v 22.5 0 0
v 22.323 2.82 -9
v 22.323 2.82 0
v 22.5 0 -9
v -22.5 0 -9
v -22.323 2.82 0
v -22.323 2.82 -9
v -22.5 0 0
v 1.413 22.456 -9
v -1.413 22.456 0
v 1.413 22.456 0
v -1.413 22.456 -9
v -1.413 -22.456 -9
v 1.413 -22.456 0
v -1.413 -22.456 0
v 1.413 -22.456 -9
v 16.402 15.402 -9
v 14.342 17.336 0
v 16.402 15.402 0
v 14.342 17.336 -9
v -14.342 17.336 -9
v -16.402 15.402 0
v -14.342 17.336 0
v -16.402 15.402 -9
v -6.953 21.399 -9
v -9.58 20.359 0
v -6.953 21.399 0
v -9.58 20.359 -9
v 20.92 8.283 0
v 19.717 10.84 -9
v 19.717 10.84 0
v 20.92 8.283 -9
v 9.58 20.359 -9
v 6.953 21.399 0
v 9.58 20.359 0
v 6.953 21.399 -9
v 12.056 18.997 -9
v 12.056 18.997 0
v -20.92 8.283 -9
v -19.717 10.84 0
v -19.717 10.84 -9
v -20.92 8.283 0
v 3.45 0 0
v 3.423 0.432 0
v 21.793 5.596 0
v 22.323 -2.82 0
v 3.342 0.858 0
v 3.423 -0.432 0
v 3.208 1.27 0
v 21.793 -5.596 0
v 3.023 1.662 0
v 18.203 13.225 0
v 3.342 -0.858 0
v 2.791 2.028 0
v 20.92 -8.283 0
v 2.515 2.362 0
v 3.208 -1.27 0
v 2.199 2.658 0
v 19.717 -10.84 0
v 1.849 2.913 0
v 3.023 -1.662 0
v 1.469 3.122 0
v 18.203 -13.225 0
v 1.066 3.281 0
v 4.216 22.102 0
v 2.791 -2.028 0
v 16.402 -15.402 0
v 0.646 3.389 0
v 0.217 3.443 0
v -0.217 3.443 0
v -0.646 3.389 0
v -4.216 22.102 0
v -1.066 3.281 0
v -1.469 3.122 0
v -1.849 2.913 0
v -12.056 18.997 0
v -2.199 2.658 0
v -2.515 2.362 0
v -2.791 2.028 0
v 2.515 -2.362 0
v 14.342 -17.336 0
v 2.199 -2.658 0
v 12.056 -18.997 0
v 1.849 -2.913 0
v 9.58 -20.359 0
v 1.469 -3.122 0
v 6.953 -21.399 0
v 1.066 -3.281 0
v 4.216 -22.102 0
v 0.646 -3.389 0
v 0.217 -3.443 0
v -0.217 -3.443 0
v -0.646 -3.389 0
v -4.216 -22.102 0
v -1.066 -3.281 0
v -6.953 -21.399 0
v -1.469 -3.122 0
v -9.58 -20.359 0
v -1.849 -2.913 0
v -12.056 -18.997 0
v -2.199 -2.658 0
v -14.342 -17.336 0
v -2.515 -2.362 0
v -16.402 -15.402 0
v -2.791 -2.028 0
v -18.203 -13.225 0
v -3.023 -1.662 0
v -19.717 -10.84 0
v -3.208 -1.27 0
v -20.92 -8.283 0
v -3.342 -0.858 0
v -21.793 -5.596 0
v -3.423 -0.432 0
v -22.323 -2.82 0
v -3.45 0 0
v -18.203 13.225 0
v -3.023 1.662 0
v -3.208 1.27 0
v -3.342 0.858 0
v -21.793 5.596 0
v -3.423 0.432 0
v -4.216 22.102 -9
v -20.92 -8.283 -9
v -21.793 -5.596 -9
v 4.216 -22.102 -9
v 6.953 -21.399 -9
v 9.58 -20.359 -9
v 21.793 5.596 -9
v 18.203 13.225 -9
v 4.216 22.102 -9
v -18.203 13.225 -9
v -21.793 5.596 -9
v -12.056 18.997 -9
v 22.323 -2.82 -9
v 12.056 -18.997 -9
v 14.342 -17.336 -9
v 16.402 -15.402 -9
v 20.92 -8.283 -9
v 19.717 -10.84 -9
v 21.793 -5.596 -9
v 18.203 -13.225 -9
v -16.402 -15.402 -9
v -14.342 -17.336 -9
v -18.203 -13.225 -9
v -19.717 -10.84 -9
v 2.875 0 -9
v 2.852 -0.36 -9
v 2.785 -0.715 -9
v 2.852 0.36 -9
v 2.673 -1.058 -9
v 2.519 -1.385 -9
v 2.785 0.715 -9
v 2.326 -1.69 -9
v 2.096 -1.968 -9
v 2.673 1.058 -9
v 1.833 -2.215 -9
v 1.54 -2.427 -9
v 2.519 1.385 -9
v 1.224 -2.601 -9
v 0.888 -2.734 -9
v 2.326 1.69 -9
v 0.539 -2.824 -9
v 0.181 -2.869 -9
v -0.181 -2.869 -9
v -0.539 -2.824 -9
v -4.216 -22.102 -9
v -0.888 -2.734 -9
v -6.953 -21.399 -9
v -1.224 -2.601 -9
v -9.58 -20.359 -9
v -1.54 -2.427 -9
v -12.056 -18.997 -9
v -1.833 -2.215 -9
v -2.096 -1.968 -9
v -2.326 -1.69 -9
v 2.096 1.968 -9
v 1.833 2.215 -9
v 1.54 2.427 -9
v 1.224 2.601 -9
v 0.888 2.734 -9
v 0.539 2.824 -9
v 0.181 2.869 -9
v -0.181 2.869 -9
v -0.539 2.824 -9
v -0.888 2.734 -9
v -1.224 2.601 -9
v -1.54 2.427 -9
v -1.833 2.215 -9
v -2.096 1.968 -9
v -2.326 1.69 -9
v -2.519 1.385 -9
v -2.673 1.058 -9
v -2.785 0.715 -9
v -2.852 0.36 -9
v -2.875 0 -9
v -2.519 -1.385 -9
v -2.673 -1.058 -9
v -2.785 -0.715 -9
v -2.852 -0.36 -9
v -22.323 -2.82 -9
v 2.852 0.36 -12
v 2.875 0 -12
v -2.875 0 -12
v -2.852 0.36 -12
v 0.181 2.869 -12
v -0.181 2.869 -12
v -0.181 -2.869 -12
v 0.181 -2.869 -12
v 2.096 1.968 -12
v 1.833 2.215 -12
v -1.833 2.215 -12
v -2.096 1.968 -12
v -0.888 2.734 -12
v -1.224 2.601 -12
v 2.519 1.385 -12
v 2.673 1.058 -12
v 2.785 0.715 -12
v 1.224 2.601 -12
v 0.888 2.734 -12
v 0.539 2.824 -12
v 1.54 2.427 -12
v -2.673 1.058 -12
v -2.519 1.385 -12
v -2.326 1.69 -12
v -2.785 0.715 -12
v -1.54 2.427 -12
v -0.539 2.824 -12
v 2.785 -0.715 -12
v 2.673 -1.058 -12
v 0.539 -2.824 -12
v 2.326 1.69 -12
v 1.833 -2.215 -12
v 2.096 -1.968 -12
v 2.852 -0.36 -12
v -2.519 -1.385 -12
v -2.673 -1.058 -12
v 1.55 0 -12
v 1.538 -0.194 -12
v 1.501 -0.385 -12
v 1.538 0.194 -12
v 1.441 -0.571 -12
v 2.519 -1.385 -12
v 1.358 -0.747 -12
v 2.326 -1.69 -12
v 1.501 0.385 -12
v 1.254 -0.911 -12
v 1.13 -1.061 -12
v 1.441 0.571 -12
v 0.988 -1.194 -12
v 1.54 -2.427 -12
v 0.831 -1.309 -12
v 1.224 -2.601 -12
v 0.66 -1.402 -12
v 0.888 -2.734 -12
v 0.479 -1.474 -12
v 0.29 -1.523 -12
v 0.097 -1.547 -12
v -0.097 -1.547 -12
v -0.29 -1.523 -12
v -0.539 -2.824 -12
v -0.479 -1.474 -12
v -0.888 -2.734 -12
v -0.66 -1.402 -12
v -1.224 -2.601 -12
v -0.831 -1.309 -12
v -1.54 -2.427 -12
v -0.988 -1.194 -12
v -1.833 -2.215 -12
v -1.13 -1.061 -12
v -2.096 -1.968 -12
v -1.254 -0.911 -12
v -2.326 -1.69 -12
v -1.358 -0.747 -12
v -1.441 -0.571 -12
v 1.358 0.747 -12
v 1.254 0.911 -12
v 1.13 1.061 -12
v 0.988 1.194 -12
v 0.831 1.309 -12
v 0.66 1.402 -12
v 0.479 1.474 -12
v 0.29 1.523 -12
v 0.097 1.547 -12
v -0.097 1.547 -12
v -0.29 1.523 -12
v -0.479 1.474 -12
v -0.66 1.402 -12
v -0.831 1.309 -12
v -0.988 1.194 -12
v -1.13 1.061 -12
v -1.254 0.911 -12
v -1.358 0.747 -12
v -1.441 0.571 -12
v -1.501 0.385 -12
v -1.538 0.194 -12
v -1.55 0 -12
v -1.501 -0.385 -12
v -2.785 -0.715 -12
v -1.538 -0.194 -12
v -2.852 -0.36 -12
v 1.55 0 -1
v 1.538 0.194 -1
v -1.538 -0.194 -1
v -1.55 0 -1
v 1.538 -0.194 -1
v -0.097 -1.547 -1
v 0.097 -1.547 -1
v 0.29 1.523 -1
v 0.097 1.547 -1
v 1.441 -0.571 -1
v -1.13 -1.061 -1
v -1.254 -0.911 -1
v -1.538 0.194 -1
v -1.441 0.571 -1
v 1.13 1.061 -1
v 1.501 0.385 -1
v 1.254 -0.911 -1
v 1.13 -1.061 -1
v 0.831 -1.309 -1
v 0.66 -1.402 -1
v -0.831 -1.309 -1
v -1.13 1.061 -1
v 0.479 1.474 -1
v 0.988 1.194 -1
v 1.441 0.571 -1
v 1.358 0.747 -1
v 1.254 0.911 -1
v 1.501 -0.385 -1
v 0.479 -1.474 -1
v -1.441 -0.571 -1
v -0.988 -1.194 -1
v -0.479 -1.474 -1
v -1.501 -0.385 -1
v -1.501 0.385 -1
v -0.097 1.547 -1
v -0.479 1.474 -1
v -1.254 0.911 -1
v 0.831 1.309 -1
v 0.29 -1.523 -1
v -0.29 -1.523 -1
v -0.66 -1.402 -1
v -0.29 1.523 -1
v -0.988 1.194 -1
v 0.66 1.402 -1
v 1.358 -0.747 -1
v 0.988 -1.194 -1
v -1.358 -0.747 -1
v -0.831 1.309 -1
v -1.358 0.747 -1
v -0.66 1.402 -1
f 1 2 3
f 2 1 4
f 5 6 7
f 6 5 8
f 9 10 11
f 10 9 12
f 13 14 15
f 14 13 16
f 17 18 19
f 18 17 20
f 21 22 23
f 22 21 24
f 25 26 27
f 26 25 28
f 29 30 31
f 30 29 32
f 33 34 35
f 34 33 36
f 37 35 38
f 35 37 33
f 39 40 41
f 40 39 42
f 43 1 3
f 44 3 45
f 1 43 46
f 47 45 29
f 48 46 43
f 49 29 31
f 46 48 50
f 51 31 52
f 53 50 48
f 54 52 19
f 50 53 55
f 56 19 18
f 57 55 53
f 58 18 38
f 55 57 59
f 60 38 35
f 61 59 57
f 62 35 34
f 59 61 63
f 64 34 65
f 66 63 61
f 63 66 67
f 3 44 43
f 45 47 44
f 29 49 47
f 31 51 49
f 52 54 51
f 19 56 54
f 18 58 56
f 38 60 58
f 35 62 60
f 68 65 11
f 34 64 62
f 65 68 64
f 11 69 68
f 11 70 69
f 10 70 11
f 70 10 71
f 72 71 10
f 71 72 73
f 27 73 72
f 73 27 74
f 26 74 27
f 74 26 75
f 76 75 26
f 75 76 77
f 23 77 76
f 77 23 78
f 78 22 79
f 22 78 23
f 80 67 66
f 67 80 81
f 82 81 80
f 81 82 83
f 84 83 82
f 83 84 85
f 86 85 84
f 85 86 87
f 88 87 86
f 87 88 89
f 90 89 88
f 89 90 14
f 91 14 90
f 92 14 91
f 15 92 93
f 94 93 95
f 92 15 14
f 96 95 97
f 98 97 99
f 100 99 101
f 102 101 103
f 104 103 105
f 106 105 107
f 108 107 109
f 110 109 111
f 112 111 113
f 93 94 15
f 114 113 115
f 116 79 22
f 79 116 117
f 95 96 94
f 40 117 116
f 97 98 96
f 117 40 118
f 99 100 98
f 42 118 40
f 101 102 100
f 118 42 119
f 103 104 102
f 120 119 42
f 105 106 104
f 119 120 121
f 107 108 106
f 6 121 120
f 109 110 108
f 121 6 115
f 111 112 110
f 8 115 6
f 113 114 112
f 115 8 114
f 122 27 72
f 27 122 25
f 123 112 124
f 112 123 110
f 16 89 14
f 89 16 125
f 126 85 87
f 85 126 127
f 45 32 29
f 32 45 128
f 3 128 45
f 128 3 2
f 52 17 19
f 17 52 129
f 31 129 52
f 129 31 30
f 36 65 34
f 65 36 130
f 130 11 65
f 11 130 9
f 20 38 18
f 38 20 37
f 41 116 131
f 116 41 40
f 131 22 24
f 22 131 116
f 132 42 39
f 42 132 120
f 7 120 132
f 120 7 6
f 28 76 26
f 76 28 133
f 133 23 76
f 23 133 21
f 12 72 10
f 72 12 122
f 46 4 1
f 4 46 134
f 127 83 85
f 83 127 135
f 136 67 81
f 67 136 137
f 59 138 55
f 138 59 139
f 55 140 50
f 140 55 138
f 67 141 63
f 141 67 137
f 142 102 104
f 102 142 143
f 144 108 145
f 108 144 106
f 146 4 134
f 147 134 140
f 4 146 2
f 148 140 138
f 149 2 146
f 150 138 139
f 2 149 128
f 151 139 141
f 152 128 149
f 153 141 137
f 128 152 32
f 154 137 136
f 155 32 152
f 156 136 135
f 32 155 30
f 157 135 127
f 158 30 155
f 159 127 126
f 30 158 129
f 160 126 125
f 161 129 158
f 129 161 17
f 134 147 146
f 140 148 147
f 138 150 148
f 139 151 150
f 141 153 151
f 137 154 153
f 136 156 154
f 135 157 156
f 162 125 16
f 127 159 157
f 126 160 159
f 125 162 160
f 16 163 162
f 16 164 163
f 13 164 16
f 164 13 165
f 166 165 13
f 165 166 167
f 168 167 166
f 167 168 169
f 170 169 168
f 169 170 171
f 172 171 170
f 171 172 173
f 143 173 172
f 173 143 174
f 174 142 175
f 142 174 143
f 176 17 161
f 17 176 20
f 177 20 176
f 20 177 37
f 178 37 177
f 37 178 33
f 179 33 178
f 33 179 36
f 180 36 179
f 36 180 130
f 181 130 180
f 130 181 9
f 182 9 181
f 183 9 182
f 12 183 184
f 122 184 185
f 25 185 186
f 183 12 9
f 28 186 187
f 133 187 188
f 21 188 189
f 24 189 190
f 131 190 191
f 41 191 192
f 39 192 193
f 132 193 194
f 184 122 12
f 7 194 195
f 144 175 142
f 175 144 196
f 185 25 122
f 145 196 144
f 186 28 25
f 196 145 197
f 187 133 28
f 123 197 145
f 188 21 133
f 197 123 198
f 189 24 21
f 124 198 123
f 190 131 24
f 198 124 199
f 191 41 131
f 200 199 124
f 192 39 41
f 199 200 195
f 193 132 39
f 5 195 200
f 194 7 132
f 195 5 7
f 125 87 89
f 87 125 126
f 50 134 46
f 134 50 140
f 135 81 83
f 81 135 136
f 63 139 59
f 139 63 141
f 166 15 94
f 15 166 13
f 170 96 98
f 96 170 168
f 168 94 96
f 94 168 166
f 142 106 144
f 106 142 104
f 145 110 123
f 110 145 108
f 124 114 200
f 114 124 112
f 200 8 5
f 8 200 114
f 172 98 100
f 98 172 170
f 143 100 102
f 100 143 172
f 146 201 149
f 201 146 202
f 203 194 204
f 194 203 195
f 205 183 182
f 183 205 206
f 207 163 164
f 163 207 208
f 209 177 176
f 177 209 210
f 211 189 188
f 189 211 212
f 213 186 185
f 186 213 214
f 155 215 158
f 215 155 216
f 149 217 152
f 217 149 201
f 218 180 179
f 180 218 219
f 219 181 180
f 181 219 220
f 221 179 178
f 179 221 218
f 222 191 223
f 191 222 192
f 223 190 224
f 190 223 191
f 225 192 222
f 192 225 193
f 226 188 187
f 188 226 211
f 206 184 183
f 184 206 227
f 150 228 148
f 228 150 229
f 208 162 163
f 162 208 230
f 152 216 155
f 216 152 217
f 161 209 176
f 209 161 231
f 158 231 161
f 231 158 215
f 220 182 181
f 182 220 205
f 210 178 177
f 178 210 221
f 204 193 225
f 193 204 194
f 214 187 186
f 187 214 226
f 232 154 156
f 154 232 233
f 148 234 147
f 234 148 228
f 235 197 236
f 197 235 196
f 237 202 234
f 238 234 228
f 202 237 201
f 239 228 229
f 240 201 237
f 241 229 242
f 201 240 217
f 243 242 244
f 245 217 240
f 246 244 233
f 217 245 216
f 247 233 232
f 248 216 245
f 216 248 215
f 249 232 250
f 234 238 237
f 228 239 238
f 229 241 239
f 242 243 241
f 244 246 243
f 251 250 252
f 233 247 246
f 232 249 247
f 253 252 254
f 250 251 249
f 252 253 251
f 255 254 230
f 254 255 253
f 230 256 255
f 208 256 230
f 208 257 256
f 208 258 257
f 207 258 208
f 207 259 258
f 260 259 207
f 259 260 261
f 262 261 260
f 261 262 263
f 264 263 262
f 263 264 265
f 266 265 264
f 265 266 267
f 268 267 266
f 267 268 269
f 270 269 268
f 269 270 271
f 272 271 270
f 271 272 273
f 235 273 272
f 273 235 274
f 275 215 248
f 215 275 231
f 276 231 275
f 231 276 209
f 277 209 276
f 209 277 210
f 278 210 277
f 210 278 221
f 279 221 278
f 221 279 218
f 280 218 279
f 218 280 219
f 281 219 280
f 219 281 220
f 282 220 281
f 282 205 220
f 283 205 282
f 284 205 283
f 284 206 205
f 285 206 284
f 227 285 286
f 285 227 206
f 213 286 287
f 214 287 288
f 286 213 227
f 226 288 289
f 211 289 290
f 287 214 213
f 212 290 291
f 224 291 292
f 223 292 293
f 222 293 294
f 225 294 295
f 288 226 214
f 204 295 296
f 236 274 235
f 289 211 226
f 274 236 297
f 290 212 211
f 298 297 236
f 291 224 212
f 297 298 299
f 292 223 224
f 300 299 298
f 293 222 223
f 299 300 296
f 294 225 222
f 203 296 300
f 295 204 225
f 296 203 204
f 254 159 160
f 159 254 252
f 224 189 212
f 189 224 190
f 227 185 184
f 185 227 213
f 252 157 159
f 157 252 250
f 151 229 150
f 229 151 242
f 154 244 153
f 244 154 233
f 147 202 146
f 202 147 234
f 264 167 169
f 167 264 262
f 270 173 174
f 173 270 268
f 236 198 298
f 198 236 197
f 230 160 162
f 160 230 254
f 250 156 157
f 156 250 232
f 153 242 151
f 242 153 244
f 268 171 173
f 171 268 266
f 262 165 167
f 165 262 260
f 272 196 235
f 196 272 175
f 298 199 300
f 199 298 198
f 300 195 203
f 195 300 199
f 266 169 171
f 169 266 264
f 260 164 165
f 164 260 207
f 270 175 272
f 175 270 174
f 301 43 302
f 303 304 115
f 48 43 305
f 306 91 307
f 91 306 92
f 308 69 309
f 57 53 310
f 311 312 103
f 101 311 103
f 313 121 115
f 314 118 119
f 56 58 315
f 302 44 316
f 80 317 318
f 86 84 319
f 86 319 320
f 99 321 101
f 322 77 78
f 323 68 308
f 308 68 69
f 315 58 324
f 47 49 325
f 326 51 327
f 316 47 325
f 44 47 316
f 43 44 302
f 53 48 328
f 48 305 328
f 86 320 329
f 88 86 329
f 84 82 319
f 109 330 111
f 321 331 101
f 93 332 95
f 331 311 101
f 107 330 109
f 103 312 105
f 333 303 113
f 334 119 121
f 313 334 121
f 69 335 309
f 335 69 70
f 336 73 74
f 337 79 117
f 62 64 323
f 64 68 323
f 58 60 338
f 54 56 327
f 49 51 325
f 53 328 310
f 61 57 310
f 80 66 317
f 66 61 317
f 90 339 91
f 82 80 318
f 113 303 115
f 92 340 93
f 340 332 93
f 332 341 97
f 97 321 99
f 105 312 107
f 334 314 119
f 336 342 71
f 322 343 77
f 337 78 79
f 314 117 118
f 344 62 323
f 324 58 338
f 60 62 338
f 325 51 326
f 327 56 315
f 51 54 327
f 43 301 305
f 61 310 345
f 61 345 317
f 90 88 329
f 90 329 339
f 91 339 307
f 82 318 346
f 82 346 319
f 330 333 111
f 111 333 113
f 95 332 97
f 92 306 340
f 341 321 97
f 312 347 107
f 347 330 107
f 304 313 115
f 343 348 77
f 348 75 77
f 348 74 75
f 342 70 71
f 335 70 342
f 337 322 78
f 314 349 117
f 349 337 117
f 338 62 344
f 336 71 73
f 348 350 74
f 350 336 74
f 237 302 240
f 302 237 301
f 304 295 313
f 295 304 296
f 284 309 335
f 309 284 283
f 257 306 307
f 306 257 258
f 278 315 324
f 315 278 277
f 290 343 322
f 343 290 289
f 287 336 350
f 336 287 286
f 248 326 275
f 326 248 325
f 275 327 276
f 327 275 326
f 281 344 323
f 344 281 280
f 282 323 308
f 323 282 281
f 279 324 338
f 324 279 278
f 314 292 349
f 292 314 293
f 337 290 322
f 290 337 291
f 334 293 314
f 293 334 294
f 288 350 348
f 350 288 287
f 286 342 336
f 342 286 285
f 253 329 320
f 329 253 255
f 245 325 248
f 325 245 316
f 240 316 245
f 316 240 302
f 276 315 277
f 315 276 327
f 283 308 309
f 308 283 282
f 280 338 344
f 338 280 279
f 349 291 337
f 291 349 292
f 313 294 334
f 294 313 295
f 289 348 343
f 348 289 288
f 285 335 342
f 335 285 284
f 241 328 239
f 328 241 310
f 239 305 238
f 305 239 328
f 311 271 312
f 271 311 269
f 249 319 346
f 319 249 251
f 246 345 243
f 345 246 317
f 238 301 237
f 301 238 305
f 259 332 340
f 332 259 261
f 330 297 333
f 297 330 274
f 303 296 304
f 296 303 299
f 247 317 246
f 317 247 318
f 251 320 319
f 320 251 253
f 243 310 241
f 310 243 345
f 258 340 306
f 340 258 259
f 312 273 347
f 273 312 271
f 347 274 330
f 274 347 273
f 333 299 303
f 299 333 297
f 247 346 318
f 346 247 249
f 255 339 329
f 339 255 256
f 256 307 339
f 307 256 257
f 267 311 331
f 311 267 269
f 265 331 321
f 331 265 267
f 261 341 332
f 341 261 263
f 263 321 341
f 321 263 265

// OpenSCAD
$fn = 50;

difference() {
	union() {
		translate(v = [0, 0, -9.0]) {
			cylinder(h = 9, r = 22.5);
		}
		#translate(v = [0, 0, -12.0]) {
			cylinder(h = 12, r = 2.875);
		}
	}
	union() {
		translate(v = [0, 0, 0]) {
			rotate(a = [0, 0, 0]) {
				difference() {
					union() {
						translate(v = [0, 0, -12.0]) {
							cylinder(h = 12, r = 1.25);
						}
						translate(v = [0, 0, -1.0]) {
							cylinder(h = 1.0, r1 = 1.55, r2 = 3.45);
						}
						translate(v = [0, 0, -12.0]) {
							cylinder(h = 12, r = 1.55);
						}
						translate(v = [0, 0, -12.0]) {
							cylinder(h = 12, r = 1.25);
						}
					}
					union();
				}
			}
		}
	}
}
